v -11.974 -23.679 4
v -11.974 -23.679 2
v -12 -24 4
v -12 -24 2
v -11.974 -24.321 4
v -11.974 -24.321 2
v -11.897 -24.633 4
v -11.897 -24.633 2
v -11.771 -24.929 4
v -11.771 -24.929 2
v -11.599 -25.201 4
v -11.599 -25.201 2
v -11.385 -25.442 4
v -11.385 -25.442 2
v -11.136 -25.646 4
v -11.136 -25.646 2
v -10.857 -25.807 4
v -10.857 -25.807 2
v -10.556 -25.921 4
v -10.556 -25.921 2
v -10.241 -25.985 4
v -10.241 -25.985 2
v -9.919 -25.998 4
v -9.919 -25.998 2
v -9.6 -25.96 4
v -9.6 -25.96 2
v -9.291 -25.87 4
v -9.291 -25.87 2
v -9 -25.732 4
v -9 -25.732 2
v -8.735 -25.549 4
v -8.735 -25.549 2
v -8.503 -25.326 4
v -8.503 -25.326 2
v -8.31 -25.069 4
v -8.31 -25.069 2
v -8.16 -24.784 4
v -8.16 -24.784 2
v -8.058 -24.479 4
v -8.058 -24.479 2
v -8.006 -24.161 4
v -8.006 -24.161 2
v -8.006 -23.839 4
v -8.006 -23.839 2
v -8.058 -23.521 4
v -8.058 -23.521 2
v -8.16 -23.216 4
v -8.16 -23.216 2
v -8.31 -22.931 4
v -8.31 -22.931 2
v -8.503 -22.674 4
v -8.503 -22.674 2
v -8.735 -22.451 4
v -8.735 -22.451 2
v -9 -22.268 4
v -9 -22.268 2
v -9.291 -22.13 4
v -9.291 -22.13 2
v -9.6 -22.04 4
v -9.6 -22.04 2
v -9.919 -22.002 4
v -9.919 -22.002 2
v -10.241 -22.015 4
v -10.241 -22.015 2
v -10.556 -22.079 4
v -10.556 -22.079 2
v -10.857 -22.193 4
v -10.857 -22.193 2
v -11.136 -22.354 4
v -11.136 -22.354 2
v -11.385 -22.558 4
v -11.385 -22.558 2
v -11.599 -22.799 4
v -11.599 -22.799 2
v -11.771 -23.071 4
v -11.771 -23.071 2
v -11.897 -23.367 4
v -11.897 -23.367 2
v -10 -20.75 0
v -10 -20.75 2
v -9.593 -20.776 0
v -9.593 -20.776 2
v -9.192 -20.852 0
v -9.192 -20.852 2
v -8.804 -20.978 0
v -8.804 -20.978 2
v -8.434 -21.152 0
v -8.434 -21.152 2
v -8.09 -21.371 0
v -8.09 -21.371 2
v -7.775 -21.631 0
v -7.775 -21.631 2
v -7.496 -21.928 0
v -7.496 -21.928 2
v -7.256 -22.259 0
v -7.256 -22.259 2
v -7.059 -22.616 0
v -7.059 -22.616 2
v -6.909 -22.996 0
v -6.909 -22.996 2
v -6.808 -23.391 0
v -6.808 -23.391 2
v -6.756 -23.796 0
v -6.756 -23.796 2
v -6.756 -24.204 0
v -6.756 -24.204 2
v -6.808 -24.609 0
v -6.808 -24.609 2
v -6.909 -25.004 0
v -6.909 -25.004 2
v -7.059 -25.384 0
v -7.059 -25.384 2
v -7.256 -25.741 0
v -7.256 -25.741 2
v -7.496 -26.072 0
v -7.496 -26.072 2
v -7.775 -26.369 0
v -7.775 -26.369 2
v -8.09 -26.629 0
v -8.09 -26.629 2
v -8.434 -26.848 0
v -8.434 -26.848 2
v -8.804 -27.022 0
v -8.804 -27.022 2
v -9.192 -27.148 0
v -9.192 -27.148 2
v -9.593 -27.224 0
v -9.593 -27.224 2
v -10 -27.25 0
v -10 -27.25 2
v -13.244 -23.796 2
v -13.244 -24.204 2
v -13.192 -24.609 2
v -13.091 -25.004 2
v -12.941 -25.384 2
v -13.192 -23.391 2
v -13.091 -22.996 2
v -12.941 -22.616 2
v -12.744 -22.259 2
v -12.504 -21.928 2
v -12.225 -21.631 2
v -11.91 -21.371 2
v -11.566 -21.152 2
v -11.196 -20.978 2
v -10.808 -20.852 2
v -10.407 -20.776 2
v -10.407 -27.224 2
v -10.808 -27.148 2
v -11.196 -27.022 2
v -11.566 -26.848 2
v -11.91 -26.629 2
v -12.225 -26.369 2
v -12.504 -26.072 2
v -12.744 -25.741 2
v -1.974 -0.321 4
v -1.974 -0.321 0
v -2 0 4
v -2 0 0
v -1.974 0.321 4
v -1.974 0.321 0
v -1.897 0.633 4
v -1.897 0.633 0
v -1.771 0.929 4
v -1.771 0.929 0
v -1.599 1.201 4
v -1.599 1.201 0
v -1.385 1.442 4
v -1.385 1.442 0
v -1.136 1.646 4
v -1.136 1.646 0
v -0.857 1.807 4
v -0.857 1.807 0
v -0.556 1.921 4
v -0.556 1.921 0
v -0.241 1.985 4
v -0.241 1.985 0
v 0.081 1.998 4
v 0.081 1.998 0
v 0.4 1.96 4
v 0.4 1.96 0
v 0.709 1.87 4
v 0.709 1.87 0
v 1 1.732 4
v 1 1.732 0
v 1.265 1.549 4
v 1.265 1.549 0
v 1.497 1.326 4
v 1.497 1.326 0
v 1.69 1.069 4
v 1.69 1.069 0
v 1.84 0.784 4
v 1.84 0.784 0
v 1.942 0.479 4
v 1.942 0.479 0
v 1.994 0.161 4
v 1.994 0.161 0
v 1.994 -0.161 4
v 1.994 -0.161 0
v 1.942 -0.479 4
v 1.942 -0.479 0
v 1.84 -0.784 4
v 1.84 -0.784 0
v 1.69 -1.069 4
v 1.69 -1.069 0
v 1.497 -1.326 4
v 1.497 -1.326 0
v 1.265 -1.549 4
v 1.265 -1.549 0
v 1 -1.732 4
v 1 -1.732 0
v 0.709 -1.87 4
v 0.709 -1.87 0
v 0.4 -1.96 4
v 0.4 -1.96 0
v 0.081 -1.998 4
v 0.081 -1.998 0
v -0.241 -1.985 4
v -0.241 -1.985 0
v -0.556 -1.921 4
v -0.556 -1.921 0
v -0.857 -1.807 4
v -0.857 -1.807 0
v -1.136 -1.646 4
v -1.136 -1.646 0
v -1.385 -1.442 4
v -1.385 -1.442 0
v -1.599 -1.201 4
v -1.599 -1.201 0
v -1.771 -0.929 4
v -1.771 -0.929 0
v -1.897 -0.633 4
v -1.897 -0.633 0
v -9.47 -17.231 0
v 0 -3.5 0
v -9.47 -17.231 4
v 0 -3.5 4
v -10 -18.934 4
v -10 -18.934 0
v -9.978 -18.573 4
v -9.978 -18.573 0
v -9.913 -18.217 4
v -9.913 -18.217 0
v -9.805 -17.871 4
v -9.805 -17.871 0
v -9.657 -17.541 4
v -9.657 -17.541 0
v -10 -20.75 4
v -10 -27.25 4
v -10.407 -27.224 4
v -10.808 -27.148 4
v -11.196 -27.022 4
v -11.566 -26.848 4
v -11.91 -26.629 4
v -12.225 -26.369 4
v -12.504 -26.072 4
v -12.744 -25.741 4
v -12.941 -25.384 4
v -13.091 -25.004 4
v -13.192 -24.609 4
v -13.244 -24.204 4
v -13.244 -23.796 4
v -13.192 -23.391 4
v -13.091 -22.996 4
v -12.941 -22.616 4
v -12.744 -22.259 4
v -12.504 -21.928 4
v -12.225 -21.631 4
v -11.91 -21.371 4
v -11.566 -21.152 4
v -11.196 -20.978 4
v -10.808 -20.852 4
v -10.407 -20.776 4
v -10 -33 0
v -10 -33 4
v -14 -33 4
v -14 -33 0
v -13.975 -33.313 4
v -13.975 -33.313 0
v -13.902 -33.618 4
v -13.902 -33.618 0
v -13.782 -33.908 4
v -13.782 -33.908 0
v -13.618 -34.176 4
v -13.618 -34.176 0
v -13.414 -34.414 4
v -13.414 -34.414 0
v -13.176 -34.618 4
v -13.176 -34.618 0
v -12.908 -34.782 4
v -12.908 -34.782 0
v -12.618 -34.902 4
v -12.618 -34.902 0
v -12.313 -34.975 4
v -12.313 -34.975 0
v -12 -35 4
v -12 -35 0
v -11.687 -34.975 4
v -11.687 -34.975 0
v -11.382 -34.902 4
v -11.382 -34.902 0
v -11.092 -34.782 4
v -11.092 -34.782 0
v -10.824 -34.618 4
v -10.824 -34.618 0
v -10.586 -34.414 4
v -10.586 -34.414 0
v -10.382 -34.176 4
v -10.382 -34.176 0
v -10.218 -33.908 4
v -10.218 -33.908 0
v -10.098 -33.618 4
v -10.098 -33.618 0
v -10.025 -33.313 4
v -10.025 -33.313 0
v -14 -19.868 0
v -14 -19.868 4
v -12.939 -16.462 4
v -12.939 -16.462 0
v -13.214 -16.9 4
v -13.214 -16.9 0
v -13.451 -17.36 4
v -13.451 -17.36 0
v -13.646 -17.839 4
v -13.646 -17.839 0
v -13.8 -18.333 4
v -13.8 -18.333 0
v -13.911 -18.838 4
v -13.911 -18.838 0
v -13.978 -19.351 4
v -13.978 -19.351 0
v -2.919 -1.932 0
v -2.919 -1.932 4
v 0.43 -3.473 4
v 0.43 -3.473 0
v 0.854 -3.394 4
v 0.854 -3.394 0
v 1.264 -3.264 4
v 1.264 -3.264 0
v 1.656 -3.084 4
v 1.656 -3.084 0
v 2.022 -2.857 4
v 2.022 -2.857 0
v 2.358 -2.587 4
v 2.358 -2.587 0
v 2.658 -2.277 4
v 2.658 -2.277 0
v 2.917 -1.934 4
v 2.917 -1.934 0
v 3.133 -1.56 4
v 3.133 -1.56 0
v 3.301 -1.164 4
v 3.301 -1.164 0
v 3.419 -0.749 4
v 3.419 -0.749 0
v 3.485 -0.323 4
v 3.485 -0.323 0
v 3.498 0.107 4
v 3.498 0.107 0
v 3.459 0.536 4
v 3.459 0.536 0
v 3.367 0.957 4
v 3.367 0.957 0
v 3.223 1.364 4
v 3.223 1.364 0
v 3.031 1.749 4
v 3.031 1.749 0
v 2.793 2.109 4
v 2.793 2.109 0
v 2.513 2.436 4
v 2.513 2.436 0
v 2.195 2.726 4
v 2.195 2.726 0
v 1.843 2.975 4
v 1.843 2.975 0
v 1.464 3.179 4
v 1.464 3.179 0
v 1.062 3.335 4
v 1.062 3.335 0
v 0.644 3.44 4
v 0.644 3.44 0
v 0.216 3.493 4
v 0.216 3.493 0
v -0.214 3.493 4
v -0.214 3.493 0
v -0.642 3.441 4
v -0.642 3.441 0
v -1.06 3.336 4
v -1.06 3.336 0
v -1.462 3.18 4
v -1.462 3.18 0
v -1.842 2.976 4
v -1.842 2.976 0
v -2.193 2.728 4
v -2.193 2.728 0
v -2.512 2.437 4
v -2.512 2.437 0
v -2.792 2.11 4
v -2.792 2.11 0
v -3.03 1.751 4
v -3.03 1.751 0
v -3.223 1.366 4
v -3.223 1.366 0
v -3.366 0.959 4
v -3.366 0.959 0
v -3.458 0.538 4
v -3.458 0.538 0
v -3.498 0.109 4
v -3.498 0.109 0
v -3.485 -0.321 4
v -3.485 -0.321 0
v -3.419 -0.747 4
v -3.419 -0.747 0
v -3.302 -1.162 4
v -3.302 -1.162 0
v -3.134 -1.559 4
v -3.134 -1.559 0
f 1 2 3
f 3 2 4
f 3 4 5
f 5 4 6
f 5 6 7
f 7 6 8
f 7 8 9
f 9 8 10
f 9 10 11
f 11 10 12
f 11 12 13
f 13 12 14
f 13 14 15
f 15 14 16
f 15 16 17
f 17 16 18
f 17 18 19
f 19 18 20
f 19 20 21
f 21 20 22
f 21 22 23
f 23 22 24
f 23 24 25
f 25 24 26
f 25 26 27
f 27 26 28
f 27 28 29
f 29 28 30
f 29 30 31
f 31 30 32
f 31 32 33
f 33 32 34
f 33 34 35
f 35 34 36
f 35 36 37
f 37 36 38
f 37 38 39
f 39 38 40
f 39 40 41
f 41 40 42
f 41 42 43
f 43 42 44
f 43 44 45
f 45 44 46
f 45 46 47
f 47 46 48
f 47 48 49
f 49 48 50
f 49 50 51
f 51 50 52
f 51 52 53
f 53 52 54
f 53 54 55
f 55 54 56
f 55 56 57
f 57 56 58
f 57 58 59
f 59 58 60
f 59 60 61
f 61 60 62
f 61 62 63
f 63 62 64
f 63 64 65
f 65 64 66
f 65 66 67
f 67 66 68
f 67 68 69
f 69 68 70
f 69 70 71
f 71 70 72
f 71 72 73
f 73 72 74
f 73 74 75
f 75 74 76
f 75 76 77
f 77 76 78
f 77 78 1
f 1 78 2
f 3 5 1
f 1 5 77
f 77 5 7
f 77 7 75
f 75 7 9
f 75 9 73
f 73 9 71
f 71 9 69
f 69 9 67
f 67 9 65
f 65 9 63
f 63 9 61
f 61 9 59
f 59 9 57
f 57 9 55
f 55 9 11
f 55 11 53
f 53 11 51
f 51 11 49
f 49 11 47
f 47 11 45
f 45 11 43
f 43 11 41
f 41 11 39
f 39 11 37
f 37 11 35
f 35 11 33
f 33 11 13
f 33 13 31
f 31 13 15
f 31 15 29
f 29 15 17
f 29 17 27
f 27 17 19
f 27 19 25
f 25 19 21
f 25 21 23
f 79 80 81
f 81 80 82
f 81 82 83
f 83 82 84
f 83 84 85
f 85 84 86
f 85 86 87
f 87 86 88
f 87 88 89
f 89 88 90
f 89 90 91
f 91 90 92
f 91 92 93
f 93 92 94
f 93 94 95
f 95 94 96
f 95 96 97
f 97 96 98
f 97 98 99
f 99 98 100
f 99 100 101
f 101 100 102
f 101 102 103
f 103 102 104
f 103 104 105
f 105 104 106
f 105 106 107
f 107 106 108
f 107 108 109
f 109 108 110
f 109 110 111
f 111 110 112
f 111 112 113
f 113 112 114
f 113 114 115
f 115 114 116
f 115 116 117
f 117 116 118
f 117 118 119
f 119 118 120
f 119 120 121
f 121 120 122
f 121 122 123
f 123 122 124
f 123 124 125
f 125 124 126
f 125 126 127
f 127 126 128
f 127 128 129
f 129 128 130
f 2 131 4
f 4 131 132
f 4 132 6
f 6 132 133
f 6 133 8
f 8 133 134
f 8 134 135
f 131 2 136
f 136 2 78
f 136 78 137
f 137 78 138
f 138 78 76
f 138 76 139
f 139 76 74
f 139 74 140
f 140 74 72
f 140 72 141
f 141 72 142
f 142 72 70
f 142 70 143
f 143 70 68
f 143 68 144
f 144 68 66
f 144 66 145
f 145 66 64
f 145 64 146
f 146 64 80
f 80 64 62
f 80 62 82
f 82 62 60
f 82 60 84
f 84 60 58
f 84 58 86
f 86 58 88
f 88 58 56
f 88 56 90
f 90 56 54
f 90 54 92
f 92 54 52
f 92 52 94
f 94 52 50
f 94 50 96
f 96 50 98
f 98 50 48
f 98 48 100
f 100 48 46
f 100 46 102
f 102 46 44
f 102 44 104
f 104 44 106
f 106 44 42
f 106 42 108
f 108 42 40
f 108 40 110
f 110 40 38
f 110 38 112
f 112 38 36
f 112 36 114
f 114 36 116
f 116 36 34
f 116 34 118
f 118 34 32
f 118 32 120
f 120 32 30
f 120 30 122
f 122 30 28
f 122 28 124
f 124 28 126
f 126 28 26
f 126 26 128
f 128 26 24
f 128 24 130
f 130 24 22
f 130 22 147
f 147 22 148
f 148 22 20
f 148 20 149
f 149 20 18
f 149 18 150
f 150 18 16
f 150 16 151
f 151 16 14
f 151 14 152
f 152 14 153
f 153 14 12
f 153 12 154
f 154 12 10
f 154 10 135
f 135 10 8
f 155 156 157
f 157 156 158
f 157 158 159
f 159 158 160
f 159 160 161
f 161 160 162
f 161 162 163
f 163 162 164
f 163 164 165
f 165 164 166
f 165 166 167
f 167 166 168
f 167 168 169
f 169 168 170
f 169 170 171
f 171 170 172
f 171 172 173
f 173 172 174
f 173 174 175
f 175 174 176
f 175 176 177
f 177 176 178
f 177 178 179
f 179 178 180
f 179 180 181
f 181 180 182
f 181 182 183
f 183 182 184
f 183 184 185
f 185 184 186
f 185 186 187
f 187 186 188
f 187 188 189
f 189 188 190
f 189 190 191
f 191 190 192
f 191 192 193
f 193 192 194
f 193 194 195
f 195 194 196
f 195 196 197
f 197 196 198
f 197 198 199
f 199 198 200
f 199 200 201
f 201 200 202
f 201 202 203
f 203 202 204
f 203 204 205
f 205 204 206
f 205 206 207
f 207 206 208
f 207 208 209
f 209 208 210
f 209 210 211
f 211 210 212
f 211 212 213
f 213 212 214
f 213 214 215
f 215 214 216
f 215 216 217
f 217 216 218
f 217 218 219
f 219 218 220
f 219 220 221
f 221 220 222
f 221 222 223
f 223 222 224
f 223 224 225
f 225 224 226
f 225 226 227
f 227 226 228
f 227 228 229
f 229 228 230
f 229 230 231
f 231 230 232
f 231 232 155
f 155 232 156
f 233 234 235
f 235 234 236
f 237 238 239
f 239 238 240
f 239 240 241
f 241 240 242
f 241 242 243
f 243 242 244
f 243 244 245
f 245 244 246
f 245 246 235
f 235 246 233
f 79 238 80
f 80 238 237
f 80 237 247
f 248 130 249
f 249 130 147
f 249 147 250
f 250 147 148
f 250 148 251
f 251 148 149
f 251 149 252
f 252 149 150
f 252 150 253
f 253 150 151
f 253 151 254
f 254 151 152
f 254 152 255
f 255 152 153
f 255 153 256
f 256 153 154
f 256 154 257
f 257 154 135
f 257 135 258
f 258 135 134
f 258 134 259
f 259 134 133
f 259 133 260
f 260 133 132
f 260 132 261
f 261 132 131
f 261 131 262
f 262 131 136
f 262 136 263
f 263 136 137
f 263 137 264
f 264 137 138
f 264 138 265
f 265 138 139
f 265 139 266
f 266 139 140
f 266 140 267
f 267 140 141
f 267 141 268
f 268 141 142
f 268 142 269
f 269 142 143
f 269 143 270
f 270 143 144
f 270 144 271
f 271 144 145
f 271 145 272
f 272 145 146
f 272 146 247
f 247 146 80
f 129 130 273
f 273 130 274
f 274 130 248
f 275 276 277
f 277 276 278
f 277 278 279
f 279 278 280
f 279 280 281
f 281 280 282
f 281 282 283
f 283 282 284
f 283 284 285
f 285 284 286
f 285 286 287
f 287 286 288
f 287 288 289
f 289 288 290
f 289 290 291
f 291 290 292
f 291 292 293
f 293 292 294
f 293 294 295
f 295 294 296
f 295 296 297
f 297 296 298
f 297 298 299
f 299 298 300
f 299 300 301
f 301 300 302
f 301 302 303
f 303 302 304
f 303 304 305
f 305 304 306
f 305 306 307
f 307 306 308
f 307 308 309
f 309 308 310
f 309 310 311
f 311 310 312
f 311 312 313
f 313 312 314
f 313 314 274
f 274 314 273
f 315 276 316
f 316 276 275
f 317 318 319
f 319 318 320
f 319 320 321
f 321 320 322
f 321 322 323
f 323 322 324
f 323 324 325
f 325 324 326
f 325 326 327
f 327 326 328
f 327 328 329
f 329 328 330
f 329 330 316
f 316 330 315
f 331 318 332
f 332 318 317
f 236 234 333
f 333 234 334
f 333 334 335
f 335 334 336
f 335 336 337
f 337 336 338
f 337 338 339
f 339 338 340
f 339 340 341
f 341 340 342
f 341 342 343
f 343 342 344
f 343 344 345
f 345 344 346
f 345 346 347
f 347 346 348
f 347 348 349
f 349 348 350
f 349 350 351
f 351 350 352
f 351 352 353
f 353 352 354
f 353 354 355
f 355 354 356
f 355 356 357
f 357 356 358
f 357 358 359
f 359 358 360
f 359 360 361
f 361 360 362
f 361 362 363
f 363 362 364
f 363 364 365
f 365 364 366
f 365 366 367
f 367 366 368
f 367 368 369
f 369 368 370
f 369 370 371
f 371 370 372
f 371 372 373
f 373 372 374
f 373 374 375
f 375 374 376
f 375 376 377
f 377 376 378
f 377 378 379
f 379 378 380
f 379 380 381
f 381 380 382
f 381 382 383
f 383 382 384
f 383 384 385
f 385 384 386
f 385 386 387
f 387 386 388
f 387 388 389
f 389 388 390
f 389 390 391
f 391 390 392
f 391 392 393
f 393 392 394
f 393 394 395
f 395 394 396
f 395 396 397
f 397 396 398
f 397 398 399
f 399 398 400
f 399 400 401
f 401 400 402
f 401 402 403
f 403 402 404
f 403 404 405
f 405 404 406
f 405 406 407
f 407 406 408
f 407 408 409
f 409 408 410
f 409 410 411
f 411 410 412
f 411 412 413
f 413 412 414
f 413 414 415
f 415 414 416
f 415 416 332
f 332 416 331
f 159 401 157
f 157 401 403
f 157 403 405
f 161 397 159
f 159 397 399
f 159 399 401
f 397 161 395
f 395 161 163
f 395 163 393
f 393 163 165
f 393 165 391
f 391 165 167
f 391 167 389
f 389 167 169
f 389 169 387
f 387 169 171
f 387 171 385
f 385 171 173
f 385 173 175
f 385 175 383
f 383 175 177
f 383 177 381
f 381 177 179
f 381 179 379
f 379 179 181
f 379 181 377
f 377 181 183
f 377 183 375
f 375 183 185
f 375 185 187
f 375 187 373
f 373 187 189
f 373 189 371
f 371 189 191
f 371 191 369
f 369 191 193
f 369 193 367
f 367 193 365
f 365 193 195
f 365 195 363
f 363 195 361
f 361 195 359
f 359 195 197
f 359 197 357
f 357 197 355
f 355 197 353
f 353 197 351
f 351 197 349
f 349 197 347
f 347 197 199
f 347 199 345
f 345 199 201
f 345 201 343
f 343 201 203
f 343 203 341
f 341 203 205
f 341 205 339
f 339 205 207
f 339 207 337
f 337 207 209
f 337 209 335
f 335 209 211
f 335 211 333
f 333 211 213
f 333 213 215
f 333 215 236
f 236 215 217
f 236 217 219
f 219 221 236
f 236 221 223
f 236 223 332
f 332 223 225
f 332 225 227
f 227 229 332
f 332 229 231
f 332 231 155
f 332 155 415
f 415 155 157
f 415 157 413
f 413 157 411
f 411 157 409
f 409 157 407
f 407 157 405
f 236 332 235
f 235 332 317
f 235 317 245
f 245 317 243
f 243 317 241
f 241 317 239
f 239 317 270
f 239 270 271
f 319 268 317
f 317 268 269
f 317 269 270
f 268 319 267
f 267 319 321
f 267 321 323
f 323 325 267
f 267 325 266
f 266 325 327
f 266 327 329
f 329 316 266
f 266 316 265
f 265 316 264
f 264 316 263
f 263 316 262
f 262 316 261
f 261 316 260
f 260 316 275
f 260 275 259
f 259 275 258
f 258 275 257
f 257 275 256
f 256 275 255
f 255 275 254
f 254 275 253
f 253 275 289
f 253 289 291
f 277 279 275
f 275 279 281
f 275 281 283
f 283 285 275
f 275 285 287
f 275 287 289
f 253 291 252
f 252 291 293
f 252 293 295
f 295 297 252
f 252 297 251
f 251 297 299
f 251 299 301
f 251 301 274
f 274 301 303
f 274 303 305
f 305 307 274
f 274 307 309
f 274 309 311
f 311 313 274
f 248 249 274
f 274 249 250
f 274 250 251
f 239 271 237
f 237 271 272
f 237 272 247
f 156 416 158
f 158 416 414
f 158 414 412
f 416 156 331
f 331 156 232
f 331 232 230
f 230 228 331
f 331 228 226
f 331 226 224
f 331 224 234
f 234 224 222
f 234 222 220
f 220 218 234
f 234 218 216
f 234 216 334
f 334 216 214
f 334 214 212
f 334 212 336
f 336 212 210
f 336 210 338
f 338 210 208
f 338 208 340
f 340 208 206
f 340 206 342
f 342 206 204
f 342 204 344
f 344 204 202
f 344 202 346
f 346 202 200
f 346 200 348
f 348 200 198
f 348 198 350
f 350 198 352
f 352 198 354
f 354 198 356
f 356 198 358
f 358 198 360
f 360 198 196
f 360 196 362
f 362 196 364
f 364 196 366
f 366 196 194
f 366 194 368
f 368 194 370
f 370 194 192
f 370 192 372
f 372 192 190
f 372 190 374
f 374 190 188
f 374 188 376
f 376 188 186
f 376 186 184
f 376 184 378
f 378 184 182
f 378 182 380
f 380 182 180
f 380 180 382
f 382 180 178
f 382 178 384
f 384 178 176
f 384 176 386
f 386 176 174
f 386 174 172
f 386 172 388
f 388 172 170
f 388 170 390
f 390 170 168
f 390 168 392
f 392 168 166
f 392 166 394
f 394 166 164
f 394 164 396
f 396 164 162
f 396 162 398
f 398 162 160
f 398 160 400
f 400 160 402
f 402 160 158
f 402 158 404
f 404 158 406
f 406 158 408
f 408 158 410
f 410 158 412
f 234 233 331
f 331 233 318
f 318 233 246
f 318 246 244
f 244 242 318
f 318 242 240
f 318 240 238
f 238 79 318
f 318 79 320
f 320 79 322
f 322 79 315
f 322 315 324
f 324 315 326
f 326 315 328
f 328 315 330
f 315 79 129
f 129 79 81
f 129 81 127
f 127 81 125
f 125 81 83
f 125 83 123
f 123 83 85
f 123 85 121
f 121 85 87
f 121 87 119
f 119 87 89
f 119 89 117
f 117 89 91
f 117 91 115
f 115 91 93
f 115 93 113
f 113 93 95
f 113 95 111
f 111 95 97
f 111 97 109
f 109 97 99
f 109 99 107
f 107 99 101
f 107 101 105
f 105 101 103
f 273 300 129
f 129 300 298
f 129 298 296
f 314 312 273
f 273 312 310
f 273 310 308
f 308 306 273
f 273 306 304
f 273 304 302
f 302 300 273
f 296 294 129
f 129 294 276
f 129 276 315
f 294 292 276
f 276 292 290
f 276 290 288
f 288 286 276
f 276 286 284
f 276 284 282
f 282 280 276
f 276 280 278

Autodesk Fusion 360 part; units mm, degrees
sketch "Sketch1" plane through (0, 0, 0) normal (0, 0, 1) x (1, 0, 0)
  circle A0 centre (0, 0) radius 2
  circle A1 centre (0, 0) radius 3.5
  circle A2 centre (-10, -24) radius 2
  circle A3 centre (-10, -24) radius 3.25
  line L0 (-10, -24) -> (-10, -20.75) construction
  line L1 (-10, -20.75) -> (-10, -18.9342)
  line L2 (0, 0) -> (0, -3.5) construction
  line L3 (-9.4696, -17.231) -> (0, -3.5)
  line L4 (-10, -24) -> (-10, -27.25) construction
  line L5 (-10, -27.25) -> (-10, -33)
  circle A4 centre (-12, -33) radius 2
  line L6 (-14, -33) -> (-14, -19.8683)
  line L7 (-12.9393, -16.462) -> (-2.9185, -1.9319)
  arc A5 (-12.9393, -16.462) -> (-14, -19.8683) centre (-8, -19.8683) ccw
  arc A6 (-9.4696, -17.231) -> (-10, -18.9342) centre (-7, -18.9342) ccw
  point P0 (-10, -18)
  point P1 (-14, -18)
  dimension "d1" = 4
  dimension "d2" = 7
  dimension "d3" = 4
  dimension "d4" = 24
  dimension "d5" = 10
  dimension "d6" = 6.5
  dimension "d7" = 2.75
  dimension "d8" = 4
  dimension "d9" = 5.75
  dimension "d11" = 15
  dimension "d12" = 4
  dimension "d13" = 6
  dimension "d14" = 3
extrude "Extrude1" add sketch "Sketch1" along normal blind 4 contours A1 | A1 A3 L1 L3 L5 A4 L6 L7 A5 A6 | A4
extrude "Extrude2" add sketch "Sketch1" along normal blind 2 contours A3
extrude "Extrude3" add sketch "Sketch1" along normal blind 4 contours A2
